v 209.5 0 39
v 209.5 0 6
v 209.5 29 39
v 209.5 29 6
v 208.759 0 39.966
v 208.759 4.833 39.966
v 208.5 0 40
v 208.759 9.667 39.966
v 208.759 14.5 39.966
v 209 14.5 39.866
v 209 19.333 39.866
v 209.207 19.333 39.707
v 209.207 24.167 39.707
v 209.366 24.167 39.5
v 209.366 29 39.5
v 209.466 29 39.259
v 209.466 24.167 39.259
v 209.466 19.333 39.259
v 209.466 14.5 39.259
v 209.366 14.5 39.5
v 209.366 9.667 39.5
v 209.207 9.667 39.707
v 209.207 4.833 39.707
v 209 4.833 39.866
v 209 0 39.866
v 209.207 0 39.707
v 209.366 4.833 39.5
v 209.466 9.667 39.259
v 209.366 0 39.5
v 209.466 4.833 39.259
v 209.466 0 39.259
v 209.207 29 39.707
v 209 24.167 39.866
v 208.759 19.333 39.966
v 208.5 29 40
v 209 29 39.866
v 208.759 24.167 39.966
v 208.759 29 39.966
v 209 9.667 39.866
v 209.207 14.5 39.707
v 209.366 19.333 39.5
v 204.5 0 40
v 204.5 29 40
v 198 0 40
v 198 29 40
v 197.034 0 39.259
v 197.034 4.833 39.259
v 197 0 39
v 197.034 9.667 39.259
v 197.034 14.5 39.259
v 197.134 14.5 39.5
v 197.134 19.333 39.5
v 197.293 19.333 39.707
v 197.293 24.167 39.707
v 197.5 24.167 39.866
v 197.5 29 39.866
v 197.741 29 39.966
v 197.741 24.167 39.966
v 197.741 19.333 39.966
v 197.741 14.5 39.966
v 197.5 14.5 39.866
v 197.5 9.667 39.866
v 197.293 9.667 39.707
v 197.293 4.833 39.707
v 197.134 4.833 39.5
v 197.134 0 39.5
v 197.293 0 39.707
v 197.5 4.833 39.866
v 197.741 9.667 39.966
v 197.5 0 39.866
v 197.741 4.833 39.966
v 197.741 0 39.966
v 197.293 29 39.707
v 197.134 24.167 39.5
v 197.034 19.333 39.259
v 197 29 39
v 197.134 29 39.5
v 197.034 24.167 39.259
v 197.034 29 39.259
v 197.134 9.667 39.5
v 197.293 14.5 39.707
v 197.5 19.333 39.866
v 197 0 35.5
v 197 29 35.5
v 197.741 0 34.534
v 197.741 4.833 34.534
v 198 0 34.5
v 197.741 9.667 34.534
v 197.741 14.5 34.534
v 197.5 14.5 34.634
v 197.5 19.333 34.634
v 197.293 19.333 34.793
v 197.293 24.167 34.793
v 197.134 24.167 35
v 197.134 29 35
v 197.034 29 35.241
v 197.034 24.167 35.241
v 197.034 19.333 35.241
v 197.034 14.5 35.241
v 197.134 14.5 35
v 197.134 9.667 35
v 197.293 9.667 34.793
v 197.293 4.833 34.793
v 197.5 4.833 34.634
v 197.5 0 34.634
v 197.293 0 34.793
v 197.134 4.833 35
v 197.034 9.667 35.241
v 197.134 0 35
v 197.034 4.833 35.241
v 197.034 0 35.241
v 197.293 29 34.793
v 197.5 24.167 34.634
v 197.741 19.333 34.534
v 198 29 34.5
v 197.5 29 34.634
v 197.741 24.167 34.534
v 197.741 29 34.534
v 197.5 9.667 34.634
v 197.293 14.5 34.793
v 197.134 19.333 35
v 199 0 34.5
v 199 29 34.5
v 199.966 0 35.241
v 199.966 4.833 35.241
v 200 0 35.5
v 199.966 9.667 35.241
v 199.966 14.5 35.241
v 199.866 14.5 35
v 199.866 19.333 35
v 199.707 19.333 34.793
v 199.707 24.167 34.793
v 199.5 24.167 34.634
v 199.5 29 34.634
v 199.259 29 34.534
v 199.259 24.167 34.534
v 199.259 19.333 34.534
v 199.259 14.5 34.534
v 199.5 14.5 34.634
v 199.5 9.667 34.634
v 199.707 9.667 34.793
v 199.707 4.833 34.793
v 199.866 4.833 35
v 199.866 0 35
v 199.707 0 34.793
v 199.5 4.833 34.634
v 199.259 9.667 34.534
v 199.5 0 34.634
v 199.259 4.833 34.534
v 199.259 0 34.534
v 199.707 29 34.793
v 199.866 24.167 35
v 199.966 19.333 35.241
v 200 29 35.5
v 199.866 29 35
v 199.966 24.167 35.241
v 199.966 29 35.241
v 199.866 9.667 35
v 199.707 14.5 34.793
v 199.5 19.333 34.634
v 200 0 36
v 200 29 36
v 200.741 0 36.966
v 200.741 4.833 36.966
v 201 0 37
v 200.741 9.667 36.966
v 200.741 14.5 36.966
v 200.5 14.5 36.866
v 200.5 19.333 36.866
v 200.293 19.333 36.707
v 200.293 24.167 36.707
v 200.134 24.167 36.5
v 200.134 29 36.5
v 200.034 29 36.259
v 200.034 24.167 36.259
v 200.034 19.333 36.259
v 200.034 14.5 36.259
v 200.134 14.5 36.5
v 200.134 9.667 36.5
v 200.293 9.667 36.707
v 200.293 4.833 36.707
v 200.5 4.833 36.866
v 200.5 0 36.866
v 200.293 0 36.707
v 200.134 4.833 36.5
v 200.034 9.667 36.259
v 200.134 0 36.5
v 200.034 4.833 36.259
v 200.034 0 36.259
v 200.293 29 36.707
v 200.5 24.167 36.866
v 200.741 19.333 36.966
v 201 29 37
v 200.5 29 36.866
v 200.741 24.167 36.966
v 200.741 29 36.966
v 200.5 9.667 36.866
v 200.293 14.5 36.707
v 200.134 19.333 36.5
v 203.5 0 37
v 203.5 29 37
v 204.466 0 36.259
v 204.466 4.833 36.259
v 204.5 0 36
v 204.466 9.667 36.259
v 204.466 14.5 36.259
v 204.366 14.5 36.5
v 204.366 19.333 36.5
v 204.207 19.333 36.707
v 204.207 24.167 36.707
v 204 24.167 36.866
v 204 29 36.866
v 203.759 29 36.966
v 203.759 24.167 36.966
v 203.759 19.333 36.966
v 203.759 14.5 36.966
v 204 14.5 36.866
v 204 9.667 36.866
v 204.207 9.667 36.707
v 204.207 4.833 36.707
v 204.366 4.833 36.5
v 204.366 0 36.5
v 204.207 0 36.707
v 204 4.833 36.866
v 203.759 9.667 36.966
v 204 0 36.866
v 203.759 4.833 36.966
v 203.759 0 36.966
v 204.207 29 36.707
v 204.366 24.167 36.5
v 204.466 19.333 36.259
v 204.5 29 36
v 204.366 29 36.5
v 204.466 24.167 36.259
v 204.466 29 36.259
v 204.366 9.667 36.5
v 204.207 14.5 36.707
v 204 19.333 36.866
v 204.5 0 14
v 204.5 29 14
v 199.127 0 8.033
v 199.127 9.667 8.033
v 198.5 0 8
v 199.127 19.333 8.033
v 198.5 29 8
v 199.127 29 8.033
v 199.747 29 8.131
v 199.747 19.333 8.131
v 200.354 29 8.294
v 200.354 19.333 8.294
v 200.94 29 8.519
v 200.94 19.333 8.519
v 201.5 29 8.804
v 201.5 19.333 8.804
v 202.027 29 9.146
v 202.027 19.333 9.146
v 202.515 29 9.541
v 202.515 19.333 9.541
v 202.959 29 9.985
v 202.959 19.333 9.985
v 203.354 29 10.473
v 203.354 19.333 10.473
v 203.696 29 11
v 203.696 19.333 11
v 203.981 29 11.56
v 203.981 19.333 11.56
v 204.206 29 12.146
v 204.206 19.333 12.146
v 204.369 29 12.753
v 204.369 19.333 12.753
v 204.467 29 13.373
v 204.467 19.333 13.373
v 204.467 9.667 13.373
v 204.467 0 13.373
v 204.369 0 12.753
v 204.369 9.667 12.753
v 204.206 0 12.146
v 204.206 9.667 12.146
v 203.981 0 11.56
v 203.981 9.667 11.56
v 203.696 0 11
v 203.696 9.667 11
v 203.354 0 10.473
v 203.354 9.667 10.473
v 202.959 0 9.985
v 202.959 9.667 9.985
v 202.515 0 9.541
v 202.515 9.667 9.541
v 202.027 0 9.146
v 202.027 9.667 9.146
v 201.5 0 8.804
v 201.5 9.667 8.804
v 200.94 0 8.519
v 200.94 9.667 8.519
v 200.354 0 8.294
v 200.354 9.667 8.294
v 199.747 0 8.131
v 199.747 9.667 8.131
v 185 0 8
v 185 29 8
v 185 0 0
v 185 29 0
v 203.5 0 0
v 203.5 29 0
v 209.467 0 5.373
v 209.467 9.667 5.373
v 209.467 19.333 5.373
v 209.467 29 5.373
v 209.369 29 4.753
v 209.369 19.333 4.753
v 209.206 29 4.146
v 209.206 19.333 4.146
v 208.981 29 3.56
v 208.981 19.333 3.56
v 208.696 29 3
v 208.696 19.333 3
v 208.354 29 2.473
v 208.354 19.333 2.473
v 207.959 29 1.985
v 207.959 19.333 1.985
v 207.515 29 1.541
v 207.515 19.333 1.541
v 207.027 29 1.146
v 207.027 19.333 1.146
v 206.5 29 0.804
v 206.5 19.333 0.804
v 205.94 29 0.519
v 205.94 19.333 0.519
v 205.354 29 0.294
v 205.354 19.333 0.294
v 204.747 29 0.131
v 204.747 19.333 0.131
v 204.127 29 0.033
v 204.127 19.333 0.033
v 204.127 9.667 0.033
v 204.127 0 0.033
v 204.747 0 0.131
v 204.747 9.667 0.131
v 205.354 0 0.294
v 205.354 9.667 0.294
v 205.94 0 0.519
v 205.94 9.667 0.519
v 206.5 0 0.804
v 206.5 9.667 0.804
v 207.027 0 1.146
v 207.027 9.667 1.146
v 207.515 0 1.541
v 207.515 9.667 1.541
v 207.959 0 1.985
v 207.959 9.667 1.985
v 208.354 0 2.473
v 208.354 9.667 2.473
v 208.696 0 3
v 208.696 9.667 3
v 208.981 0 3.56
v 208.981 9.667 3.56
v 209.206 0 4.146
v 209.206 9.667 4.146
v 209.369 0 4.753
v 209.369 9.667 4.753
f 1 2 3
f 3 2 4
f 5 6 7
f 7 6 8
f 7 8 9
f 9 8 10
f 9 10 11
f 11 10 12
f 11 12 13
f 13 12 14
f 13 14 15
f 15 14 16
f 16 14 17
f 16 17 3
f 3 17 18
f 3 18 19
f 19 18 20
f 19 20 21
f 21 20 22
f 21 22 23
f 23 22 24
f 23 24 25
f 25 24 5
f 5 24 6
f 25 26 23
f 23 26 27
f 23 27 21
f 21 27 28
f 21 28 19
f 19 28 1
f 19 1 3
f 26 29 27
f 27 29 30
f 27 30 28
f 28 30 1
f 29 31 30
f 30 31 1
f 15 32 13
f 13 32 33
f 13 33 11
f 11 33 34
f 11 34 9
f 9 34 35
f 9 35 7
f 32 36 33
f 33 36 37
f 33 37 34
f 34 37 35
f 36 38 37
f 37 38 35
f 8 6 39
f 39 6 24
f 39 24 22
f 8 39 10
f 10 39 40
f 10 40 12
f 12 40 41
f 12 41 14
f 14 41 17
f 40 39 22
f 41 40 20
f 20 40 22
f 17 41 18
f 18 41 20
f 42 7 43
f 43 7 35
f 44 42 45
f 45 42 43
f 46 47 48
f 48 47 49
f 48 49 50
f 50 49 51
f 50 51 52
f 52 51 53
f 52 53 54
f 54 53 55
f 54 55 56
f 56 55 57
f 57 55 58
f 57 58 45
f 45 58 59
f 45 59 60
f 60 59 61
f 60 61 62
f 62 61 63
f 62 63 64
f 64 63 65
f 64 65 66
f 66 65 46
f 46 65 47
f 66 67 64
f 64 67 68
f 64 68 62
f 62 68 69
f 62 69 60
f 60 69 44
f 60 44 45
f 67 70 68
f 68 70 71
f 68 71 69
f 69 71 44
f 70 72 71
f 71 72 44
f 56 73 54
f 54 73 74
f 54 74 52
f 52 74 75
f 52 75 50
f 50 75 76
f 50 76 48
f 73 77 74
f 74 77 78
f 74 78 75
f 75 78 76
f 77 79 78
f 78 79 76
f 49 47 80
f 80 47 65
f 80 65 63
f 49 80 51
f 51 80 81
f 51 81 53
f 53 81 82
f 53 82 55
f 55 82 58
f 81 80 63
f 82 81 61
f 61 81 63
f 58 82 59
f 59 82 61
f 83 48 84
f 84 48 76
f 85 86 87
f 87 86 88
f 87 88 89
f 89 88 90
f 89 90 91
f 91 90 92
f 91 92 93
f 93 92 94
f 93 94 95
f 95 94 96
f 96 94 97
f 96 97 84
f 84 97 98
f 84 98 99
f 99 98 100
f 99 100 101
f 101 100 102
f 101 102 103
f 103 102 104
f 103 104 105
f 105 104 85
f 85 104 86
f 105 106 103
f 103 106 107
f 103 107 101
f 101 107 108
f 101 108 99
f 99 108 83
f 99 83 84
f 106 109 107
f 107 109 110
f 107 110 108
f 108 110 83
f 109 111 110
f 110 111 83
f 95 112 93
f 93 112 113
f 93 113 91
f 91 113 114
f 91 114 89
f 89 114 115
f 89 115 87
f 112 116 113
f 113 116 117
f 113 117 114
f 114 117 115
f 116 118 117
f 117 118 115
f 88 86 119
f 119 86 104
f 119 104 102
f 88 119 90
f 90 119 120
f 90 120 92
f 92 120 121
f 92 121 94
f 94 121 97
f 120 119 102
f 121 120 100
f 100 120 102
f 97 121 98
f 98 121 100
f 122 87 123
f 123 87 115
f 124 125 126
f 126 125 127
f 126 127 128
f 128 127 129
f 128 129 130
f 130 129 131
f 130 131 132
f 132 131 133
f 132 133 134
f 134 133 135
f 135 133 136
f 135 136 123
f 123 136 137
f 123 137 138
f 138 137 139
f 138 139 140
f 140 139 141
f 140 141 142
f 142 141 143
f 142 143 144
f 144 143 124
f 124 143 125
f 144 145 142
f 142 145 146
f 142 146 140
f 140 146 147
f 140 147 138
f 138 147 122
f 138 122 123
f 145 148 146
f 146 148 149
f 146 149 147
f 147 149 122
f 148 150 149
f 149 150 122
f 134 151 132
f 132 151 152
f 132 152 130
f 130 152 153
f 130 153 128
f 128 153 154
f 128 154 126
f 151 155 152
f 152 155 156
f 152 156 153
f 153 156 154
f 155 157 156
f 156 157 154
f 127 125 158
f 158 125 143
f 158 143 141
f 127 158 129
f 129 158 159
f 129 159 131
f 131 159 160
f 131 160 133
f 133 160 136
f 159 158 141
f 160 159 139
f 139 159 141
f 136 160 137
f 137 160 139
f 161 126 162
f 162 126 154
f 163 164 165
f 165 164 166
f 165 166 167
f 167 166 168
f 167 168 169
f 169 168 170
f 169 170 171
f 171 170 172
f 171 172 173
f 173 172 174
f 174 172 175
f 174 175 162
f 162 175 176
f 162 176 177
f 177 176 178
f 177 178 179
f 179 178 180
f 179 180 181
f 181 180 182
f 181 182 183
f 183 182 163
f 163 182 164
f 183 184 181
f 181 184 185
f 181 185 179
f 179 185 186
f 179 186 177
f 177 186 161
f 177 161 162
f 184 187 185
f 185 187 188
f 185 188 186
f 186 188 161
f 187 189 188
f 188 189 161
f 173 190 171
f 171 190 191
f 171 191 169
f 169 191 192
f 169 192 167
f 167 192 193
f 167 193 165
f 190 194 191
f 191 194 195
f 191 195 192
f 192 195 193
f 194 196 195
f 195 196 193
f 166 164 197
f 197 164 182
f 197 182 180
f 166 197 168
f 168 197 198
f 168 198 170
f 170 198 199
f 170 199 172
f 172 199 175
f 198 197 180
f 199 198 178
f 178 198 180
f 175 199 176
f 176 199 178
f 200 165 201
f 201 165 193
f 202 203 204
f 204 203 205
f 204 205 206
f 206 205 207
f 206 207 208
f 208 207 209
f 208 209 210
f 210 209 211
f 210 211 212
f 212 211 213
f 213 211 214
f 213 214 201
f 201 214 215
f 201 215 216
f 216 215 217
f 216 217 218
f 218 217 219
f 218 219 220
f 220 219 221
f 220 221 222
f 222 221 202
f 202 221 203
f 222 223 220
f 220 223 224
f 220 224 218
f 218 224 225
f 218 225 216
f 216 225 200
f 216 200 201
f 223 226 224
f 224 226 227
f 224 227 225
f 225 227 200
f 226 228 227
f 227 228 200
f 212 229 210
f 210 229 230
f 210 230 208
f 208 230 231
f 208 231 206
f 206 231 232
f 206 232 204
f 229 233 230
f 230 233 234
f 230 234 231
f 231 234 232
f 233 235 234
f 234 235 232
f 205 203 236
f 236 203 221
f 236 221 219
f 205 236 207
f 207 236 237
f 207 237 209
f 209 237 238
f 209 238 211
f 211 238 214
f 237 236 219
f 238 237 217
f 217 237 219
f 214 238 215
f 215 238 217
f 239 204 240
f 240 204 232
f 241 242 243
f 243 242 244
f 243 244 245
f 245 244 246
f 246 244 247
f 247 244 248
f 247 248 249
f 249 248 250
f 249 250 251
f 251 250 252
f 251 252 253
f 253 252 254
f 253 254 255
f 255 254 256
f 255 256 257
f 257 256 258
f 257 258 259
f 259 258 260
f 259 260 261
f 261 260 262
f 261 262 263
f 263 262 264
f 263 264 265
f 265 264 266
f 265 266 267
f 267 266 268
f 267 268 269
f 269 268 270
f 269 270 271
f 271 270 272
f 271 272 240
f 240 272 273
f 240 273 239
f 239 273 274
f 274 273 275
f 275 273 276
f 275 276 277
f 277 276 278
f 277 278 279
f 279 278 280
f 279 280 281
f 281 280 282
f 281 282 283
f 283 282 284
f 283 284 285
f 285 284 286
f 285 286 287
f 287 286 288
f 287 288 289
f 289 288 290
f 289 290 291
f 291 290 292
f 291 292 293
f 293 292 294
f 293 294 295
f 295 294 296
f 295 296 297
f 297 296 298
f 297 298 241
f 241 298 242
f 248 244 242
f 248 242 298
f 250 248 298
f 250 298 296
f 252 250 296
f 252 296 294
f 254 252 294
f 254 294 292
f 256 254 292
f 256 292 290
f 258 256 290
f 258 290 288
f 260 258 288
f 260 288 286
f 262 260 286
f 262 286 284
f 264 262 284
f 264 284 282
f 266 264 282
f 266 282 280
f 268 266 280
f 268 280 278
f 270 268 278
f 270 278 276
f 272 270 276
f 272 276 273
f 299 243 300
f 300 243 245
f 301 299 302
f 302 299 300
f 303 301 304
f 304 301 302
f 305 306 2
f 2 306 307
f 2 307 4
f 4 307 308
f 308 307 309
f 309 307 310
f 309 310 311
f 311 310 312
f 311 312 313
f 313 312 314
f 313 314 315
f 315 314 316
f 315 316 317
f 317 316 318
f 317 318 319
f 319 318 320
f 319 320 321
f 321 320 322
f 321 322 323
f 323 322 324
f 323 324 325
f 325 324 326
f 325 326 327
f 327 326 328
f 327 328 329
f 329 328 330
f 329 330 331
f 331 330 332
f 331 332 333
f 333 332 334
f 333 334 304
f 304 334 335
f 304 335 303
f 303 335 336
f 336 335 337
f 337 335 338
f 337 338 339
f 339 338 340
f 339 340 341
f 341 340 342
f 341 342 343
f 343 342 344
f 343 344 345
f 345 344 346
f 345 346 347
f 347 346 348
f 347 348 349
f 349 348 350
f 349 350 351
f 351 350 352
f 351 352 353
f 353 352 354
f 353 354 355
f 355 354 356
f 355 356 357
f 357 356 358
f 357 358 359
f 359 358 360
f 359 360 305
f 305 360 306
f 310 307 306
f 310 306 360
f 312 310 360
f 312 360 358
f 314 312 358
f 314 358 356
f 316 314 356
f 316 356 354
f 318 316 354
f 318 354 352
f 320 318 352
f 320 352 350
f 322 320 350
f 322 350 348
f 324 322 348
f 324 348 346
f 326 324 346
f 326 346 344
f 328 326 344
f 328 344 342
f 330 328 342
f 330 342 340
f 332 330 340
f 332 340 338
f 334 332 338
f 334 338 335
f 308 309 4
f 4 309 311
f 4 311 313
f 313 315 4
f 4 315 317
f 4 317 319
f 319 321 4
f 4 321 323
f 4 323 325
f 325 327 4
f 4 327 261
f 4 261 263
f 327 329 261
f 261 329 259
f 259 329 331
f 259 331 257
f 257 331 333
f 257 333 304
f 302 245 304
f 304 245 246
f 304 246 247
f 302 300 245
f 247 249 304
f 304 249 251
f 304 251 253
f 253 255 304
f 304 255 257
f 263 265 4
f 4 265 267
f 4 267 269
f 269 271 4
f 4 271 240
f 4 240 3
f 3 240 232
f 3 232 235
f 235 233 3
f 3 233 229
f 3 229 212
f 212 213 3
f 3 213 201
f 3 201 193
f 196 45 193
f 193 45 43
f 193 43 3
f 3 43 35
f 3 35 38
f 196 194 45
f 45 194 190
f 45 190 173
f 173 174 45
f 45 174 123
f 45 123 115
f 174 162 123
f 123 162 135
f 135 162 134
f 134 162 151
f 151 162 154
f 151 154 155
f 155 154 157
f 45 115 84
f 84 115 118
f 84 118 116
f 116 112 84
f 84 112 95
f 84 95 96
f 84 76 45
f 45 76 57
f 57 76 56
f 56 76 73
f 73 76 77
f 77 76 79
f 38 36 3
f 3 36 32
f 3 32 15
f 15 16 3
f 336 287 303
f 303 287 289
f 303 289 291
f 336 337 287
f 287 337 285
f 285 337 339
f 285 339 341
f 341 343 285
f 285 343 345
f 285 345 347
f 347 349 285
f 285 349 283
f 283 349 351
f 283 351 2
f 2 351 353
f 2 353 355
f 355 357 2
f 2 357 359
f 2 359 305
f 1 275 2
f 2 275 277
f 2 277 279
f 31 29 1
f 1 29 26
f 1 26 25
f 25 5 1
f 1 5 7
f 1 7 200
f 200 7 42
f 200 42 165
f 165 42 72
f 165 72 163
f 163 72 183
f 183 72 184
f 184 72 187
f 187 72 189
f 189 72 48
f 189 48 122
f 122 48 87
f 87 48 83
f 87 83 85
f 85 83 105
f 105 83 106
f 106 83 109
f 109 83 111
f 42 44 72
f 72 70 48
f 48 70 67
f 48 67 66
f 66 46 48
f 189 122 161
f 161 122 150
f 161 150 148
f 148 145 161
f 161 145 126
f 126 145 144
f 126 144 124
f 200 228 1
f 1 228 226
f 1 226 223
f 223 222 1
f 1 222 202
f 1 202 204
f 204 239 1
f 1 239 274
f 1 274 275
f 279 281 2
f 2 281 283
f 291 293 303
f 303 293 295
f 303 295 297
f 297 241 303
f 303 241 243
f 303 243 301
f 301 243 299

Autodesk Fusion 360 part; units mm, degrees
sketch "Sketch1" plane through (0, 0, 0) normal (0, 1, 0) x (1, 0, 0)
  line L0 (0, 0) -> (203.5, 0)
  line L1 (209.5, -6) -> (209.5, -39)
  line L2 (204.5, -14) -> (204.5, -36)
  line L3 (204.5, -40) -> (208.5, -40)
  line L4 (204.5, -40) -> (198, -40)
  line L5 (203.5, -37) -> (201, -37)
  line L6 (200, -36) -> (200, -35.5)
  line L7 (199, -34.5) -> (198, -34.5)
  line L8 (197, -35.5) -> (197, -39)
  arc A0 (200, -35.5) -> (199, -34.5) centre (199, -35.5) ccw
  arc A1 (198, -34.5) -> (197, -35.5) centre (198, -35.5) ccw
  arc A2 (200, -36) -> (201, -37) centre (201, -36) ccw
  arc A3 (203.5, -37) -> (204.5, -36) centre (203.5, -36) ccw
  arc A4 (197, -39) -> (198, -40) centre (198, -39) ccw
  arc A5 (208.5, -40) -> (209.5, -39) centre (208.5, -39) ccw
  line L9 (0, -8) -> (198.5, -8)
  arc A6 (204.5, -14) -> (198.5, -8) centre (198.5, -14) ccw
  arc A7 (209.5, -6) -> (203.5, 0) centre (203.5, -6) ccw
  line L10 (185, 0) -> (185, -8)
  point P0 (204.5, 0)
  point P1 (209.5, 0)
  point P2 (209.5, -40)
  point P3 (200, -37)
  point P4 (200, -34.5)
  point P5 (197, -34.5)
  point P6 (197, -40)
  dimension "d14" = 5
  dimension "d15" = 40
  dimension "d16" = 7.5
  dimension "d17" = 5.5
  dimension "d18" = 3
  dimension "d20" = 2.5
  dimension "d21" = 1
  dimension "d22" = 1
  dimension "d23" = 1
  dimension "d24" = 1
  dimension "d26" = 6
  dimension "d27" = 6
extrude "Extrude1" add sketch "Sketch1" along normal blind 29
